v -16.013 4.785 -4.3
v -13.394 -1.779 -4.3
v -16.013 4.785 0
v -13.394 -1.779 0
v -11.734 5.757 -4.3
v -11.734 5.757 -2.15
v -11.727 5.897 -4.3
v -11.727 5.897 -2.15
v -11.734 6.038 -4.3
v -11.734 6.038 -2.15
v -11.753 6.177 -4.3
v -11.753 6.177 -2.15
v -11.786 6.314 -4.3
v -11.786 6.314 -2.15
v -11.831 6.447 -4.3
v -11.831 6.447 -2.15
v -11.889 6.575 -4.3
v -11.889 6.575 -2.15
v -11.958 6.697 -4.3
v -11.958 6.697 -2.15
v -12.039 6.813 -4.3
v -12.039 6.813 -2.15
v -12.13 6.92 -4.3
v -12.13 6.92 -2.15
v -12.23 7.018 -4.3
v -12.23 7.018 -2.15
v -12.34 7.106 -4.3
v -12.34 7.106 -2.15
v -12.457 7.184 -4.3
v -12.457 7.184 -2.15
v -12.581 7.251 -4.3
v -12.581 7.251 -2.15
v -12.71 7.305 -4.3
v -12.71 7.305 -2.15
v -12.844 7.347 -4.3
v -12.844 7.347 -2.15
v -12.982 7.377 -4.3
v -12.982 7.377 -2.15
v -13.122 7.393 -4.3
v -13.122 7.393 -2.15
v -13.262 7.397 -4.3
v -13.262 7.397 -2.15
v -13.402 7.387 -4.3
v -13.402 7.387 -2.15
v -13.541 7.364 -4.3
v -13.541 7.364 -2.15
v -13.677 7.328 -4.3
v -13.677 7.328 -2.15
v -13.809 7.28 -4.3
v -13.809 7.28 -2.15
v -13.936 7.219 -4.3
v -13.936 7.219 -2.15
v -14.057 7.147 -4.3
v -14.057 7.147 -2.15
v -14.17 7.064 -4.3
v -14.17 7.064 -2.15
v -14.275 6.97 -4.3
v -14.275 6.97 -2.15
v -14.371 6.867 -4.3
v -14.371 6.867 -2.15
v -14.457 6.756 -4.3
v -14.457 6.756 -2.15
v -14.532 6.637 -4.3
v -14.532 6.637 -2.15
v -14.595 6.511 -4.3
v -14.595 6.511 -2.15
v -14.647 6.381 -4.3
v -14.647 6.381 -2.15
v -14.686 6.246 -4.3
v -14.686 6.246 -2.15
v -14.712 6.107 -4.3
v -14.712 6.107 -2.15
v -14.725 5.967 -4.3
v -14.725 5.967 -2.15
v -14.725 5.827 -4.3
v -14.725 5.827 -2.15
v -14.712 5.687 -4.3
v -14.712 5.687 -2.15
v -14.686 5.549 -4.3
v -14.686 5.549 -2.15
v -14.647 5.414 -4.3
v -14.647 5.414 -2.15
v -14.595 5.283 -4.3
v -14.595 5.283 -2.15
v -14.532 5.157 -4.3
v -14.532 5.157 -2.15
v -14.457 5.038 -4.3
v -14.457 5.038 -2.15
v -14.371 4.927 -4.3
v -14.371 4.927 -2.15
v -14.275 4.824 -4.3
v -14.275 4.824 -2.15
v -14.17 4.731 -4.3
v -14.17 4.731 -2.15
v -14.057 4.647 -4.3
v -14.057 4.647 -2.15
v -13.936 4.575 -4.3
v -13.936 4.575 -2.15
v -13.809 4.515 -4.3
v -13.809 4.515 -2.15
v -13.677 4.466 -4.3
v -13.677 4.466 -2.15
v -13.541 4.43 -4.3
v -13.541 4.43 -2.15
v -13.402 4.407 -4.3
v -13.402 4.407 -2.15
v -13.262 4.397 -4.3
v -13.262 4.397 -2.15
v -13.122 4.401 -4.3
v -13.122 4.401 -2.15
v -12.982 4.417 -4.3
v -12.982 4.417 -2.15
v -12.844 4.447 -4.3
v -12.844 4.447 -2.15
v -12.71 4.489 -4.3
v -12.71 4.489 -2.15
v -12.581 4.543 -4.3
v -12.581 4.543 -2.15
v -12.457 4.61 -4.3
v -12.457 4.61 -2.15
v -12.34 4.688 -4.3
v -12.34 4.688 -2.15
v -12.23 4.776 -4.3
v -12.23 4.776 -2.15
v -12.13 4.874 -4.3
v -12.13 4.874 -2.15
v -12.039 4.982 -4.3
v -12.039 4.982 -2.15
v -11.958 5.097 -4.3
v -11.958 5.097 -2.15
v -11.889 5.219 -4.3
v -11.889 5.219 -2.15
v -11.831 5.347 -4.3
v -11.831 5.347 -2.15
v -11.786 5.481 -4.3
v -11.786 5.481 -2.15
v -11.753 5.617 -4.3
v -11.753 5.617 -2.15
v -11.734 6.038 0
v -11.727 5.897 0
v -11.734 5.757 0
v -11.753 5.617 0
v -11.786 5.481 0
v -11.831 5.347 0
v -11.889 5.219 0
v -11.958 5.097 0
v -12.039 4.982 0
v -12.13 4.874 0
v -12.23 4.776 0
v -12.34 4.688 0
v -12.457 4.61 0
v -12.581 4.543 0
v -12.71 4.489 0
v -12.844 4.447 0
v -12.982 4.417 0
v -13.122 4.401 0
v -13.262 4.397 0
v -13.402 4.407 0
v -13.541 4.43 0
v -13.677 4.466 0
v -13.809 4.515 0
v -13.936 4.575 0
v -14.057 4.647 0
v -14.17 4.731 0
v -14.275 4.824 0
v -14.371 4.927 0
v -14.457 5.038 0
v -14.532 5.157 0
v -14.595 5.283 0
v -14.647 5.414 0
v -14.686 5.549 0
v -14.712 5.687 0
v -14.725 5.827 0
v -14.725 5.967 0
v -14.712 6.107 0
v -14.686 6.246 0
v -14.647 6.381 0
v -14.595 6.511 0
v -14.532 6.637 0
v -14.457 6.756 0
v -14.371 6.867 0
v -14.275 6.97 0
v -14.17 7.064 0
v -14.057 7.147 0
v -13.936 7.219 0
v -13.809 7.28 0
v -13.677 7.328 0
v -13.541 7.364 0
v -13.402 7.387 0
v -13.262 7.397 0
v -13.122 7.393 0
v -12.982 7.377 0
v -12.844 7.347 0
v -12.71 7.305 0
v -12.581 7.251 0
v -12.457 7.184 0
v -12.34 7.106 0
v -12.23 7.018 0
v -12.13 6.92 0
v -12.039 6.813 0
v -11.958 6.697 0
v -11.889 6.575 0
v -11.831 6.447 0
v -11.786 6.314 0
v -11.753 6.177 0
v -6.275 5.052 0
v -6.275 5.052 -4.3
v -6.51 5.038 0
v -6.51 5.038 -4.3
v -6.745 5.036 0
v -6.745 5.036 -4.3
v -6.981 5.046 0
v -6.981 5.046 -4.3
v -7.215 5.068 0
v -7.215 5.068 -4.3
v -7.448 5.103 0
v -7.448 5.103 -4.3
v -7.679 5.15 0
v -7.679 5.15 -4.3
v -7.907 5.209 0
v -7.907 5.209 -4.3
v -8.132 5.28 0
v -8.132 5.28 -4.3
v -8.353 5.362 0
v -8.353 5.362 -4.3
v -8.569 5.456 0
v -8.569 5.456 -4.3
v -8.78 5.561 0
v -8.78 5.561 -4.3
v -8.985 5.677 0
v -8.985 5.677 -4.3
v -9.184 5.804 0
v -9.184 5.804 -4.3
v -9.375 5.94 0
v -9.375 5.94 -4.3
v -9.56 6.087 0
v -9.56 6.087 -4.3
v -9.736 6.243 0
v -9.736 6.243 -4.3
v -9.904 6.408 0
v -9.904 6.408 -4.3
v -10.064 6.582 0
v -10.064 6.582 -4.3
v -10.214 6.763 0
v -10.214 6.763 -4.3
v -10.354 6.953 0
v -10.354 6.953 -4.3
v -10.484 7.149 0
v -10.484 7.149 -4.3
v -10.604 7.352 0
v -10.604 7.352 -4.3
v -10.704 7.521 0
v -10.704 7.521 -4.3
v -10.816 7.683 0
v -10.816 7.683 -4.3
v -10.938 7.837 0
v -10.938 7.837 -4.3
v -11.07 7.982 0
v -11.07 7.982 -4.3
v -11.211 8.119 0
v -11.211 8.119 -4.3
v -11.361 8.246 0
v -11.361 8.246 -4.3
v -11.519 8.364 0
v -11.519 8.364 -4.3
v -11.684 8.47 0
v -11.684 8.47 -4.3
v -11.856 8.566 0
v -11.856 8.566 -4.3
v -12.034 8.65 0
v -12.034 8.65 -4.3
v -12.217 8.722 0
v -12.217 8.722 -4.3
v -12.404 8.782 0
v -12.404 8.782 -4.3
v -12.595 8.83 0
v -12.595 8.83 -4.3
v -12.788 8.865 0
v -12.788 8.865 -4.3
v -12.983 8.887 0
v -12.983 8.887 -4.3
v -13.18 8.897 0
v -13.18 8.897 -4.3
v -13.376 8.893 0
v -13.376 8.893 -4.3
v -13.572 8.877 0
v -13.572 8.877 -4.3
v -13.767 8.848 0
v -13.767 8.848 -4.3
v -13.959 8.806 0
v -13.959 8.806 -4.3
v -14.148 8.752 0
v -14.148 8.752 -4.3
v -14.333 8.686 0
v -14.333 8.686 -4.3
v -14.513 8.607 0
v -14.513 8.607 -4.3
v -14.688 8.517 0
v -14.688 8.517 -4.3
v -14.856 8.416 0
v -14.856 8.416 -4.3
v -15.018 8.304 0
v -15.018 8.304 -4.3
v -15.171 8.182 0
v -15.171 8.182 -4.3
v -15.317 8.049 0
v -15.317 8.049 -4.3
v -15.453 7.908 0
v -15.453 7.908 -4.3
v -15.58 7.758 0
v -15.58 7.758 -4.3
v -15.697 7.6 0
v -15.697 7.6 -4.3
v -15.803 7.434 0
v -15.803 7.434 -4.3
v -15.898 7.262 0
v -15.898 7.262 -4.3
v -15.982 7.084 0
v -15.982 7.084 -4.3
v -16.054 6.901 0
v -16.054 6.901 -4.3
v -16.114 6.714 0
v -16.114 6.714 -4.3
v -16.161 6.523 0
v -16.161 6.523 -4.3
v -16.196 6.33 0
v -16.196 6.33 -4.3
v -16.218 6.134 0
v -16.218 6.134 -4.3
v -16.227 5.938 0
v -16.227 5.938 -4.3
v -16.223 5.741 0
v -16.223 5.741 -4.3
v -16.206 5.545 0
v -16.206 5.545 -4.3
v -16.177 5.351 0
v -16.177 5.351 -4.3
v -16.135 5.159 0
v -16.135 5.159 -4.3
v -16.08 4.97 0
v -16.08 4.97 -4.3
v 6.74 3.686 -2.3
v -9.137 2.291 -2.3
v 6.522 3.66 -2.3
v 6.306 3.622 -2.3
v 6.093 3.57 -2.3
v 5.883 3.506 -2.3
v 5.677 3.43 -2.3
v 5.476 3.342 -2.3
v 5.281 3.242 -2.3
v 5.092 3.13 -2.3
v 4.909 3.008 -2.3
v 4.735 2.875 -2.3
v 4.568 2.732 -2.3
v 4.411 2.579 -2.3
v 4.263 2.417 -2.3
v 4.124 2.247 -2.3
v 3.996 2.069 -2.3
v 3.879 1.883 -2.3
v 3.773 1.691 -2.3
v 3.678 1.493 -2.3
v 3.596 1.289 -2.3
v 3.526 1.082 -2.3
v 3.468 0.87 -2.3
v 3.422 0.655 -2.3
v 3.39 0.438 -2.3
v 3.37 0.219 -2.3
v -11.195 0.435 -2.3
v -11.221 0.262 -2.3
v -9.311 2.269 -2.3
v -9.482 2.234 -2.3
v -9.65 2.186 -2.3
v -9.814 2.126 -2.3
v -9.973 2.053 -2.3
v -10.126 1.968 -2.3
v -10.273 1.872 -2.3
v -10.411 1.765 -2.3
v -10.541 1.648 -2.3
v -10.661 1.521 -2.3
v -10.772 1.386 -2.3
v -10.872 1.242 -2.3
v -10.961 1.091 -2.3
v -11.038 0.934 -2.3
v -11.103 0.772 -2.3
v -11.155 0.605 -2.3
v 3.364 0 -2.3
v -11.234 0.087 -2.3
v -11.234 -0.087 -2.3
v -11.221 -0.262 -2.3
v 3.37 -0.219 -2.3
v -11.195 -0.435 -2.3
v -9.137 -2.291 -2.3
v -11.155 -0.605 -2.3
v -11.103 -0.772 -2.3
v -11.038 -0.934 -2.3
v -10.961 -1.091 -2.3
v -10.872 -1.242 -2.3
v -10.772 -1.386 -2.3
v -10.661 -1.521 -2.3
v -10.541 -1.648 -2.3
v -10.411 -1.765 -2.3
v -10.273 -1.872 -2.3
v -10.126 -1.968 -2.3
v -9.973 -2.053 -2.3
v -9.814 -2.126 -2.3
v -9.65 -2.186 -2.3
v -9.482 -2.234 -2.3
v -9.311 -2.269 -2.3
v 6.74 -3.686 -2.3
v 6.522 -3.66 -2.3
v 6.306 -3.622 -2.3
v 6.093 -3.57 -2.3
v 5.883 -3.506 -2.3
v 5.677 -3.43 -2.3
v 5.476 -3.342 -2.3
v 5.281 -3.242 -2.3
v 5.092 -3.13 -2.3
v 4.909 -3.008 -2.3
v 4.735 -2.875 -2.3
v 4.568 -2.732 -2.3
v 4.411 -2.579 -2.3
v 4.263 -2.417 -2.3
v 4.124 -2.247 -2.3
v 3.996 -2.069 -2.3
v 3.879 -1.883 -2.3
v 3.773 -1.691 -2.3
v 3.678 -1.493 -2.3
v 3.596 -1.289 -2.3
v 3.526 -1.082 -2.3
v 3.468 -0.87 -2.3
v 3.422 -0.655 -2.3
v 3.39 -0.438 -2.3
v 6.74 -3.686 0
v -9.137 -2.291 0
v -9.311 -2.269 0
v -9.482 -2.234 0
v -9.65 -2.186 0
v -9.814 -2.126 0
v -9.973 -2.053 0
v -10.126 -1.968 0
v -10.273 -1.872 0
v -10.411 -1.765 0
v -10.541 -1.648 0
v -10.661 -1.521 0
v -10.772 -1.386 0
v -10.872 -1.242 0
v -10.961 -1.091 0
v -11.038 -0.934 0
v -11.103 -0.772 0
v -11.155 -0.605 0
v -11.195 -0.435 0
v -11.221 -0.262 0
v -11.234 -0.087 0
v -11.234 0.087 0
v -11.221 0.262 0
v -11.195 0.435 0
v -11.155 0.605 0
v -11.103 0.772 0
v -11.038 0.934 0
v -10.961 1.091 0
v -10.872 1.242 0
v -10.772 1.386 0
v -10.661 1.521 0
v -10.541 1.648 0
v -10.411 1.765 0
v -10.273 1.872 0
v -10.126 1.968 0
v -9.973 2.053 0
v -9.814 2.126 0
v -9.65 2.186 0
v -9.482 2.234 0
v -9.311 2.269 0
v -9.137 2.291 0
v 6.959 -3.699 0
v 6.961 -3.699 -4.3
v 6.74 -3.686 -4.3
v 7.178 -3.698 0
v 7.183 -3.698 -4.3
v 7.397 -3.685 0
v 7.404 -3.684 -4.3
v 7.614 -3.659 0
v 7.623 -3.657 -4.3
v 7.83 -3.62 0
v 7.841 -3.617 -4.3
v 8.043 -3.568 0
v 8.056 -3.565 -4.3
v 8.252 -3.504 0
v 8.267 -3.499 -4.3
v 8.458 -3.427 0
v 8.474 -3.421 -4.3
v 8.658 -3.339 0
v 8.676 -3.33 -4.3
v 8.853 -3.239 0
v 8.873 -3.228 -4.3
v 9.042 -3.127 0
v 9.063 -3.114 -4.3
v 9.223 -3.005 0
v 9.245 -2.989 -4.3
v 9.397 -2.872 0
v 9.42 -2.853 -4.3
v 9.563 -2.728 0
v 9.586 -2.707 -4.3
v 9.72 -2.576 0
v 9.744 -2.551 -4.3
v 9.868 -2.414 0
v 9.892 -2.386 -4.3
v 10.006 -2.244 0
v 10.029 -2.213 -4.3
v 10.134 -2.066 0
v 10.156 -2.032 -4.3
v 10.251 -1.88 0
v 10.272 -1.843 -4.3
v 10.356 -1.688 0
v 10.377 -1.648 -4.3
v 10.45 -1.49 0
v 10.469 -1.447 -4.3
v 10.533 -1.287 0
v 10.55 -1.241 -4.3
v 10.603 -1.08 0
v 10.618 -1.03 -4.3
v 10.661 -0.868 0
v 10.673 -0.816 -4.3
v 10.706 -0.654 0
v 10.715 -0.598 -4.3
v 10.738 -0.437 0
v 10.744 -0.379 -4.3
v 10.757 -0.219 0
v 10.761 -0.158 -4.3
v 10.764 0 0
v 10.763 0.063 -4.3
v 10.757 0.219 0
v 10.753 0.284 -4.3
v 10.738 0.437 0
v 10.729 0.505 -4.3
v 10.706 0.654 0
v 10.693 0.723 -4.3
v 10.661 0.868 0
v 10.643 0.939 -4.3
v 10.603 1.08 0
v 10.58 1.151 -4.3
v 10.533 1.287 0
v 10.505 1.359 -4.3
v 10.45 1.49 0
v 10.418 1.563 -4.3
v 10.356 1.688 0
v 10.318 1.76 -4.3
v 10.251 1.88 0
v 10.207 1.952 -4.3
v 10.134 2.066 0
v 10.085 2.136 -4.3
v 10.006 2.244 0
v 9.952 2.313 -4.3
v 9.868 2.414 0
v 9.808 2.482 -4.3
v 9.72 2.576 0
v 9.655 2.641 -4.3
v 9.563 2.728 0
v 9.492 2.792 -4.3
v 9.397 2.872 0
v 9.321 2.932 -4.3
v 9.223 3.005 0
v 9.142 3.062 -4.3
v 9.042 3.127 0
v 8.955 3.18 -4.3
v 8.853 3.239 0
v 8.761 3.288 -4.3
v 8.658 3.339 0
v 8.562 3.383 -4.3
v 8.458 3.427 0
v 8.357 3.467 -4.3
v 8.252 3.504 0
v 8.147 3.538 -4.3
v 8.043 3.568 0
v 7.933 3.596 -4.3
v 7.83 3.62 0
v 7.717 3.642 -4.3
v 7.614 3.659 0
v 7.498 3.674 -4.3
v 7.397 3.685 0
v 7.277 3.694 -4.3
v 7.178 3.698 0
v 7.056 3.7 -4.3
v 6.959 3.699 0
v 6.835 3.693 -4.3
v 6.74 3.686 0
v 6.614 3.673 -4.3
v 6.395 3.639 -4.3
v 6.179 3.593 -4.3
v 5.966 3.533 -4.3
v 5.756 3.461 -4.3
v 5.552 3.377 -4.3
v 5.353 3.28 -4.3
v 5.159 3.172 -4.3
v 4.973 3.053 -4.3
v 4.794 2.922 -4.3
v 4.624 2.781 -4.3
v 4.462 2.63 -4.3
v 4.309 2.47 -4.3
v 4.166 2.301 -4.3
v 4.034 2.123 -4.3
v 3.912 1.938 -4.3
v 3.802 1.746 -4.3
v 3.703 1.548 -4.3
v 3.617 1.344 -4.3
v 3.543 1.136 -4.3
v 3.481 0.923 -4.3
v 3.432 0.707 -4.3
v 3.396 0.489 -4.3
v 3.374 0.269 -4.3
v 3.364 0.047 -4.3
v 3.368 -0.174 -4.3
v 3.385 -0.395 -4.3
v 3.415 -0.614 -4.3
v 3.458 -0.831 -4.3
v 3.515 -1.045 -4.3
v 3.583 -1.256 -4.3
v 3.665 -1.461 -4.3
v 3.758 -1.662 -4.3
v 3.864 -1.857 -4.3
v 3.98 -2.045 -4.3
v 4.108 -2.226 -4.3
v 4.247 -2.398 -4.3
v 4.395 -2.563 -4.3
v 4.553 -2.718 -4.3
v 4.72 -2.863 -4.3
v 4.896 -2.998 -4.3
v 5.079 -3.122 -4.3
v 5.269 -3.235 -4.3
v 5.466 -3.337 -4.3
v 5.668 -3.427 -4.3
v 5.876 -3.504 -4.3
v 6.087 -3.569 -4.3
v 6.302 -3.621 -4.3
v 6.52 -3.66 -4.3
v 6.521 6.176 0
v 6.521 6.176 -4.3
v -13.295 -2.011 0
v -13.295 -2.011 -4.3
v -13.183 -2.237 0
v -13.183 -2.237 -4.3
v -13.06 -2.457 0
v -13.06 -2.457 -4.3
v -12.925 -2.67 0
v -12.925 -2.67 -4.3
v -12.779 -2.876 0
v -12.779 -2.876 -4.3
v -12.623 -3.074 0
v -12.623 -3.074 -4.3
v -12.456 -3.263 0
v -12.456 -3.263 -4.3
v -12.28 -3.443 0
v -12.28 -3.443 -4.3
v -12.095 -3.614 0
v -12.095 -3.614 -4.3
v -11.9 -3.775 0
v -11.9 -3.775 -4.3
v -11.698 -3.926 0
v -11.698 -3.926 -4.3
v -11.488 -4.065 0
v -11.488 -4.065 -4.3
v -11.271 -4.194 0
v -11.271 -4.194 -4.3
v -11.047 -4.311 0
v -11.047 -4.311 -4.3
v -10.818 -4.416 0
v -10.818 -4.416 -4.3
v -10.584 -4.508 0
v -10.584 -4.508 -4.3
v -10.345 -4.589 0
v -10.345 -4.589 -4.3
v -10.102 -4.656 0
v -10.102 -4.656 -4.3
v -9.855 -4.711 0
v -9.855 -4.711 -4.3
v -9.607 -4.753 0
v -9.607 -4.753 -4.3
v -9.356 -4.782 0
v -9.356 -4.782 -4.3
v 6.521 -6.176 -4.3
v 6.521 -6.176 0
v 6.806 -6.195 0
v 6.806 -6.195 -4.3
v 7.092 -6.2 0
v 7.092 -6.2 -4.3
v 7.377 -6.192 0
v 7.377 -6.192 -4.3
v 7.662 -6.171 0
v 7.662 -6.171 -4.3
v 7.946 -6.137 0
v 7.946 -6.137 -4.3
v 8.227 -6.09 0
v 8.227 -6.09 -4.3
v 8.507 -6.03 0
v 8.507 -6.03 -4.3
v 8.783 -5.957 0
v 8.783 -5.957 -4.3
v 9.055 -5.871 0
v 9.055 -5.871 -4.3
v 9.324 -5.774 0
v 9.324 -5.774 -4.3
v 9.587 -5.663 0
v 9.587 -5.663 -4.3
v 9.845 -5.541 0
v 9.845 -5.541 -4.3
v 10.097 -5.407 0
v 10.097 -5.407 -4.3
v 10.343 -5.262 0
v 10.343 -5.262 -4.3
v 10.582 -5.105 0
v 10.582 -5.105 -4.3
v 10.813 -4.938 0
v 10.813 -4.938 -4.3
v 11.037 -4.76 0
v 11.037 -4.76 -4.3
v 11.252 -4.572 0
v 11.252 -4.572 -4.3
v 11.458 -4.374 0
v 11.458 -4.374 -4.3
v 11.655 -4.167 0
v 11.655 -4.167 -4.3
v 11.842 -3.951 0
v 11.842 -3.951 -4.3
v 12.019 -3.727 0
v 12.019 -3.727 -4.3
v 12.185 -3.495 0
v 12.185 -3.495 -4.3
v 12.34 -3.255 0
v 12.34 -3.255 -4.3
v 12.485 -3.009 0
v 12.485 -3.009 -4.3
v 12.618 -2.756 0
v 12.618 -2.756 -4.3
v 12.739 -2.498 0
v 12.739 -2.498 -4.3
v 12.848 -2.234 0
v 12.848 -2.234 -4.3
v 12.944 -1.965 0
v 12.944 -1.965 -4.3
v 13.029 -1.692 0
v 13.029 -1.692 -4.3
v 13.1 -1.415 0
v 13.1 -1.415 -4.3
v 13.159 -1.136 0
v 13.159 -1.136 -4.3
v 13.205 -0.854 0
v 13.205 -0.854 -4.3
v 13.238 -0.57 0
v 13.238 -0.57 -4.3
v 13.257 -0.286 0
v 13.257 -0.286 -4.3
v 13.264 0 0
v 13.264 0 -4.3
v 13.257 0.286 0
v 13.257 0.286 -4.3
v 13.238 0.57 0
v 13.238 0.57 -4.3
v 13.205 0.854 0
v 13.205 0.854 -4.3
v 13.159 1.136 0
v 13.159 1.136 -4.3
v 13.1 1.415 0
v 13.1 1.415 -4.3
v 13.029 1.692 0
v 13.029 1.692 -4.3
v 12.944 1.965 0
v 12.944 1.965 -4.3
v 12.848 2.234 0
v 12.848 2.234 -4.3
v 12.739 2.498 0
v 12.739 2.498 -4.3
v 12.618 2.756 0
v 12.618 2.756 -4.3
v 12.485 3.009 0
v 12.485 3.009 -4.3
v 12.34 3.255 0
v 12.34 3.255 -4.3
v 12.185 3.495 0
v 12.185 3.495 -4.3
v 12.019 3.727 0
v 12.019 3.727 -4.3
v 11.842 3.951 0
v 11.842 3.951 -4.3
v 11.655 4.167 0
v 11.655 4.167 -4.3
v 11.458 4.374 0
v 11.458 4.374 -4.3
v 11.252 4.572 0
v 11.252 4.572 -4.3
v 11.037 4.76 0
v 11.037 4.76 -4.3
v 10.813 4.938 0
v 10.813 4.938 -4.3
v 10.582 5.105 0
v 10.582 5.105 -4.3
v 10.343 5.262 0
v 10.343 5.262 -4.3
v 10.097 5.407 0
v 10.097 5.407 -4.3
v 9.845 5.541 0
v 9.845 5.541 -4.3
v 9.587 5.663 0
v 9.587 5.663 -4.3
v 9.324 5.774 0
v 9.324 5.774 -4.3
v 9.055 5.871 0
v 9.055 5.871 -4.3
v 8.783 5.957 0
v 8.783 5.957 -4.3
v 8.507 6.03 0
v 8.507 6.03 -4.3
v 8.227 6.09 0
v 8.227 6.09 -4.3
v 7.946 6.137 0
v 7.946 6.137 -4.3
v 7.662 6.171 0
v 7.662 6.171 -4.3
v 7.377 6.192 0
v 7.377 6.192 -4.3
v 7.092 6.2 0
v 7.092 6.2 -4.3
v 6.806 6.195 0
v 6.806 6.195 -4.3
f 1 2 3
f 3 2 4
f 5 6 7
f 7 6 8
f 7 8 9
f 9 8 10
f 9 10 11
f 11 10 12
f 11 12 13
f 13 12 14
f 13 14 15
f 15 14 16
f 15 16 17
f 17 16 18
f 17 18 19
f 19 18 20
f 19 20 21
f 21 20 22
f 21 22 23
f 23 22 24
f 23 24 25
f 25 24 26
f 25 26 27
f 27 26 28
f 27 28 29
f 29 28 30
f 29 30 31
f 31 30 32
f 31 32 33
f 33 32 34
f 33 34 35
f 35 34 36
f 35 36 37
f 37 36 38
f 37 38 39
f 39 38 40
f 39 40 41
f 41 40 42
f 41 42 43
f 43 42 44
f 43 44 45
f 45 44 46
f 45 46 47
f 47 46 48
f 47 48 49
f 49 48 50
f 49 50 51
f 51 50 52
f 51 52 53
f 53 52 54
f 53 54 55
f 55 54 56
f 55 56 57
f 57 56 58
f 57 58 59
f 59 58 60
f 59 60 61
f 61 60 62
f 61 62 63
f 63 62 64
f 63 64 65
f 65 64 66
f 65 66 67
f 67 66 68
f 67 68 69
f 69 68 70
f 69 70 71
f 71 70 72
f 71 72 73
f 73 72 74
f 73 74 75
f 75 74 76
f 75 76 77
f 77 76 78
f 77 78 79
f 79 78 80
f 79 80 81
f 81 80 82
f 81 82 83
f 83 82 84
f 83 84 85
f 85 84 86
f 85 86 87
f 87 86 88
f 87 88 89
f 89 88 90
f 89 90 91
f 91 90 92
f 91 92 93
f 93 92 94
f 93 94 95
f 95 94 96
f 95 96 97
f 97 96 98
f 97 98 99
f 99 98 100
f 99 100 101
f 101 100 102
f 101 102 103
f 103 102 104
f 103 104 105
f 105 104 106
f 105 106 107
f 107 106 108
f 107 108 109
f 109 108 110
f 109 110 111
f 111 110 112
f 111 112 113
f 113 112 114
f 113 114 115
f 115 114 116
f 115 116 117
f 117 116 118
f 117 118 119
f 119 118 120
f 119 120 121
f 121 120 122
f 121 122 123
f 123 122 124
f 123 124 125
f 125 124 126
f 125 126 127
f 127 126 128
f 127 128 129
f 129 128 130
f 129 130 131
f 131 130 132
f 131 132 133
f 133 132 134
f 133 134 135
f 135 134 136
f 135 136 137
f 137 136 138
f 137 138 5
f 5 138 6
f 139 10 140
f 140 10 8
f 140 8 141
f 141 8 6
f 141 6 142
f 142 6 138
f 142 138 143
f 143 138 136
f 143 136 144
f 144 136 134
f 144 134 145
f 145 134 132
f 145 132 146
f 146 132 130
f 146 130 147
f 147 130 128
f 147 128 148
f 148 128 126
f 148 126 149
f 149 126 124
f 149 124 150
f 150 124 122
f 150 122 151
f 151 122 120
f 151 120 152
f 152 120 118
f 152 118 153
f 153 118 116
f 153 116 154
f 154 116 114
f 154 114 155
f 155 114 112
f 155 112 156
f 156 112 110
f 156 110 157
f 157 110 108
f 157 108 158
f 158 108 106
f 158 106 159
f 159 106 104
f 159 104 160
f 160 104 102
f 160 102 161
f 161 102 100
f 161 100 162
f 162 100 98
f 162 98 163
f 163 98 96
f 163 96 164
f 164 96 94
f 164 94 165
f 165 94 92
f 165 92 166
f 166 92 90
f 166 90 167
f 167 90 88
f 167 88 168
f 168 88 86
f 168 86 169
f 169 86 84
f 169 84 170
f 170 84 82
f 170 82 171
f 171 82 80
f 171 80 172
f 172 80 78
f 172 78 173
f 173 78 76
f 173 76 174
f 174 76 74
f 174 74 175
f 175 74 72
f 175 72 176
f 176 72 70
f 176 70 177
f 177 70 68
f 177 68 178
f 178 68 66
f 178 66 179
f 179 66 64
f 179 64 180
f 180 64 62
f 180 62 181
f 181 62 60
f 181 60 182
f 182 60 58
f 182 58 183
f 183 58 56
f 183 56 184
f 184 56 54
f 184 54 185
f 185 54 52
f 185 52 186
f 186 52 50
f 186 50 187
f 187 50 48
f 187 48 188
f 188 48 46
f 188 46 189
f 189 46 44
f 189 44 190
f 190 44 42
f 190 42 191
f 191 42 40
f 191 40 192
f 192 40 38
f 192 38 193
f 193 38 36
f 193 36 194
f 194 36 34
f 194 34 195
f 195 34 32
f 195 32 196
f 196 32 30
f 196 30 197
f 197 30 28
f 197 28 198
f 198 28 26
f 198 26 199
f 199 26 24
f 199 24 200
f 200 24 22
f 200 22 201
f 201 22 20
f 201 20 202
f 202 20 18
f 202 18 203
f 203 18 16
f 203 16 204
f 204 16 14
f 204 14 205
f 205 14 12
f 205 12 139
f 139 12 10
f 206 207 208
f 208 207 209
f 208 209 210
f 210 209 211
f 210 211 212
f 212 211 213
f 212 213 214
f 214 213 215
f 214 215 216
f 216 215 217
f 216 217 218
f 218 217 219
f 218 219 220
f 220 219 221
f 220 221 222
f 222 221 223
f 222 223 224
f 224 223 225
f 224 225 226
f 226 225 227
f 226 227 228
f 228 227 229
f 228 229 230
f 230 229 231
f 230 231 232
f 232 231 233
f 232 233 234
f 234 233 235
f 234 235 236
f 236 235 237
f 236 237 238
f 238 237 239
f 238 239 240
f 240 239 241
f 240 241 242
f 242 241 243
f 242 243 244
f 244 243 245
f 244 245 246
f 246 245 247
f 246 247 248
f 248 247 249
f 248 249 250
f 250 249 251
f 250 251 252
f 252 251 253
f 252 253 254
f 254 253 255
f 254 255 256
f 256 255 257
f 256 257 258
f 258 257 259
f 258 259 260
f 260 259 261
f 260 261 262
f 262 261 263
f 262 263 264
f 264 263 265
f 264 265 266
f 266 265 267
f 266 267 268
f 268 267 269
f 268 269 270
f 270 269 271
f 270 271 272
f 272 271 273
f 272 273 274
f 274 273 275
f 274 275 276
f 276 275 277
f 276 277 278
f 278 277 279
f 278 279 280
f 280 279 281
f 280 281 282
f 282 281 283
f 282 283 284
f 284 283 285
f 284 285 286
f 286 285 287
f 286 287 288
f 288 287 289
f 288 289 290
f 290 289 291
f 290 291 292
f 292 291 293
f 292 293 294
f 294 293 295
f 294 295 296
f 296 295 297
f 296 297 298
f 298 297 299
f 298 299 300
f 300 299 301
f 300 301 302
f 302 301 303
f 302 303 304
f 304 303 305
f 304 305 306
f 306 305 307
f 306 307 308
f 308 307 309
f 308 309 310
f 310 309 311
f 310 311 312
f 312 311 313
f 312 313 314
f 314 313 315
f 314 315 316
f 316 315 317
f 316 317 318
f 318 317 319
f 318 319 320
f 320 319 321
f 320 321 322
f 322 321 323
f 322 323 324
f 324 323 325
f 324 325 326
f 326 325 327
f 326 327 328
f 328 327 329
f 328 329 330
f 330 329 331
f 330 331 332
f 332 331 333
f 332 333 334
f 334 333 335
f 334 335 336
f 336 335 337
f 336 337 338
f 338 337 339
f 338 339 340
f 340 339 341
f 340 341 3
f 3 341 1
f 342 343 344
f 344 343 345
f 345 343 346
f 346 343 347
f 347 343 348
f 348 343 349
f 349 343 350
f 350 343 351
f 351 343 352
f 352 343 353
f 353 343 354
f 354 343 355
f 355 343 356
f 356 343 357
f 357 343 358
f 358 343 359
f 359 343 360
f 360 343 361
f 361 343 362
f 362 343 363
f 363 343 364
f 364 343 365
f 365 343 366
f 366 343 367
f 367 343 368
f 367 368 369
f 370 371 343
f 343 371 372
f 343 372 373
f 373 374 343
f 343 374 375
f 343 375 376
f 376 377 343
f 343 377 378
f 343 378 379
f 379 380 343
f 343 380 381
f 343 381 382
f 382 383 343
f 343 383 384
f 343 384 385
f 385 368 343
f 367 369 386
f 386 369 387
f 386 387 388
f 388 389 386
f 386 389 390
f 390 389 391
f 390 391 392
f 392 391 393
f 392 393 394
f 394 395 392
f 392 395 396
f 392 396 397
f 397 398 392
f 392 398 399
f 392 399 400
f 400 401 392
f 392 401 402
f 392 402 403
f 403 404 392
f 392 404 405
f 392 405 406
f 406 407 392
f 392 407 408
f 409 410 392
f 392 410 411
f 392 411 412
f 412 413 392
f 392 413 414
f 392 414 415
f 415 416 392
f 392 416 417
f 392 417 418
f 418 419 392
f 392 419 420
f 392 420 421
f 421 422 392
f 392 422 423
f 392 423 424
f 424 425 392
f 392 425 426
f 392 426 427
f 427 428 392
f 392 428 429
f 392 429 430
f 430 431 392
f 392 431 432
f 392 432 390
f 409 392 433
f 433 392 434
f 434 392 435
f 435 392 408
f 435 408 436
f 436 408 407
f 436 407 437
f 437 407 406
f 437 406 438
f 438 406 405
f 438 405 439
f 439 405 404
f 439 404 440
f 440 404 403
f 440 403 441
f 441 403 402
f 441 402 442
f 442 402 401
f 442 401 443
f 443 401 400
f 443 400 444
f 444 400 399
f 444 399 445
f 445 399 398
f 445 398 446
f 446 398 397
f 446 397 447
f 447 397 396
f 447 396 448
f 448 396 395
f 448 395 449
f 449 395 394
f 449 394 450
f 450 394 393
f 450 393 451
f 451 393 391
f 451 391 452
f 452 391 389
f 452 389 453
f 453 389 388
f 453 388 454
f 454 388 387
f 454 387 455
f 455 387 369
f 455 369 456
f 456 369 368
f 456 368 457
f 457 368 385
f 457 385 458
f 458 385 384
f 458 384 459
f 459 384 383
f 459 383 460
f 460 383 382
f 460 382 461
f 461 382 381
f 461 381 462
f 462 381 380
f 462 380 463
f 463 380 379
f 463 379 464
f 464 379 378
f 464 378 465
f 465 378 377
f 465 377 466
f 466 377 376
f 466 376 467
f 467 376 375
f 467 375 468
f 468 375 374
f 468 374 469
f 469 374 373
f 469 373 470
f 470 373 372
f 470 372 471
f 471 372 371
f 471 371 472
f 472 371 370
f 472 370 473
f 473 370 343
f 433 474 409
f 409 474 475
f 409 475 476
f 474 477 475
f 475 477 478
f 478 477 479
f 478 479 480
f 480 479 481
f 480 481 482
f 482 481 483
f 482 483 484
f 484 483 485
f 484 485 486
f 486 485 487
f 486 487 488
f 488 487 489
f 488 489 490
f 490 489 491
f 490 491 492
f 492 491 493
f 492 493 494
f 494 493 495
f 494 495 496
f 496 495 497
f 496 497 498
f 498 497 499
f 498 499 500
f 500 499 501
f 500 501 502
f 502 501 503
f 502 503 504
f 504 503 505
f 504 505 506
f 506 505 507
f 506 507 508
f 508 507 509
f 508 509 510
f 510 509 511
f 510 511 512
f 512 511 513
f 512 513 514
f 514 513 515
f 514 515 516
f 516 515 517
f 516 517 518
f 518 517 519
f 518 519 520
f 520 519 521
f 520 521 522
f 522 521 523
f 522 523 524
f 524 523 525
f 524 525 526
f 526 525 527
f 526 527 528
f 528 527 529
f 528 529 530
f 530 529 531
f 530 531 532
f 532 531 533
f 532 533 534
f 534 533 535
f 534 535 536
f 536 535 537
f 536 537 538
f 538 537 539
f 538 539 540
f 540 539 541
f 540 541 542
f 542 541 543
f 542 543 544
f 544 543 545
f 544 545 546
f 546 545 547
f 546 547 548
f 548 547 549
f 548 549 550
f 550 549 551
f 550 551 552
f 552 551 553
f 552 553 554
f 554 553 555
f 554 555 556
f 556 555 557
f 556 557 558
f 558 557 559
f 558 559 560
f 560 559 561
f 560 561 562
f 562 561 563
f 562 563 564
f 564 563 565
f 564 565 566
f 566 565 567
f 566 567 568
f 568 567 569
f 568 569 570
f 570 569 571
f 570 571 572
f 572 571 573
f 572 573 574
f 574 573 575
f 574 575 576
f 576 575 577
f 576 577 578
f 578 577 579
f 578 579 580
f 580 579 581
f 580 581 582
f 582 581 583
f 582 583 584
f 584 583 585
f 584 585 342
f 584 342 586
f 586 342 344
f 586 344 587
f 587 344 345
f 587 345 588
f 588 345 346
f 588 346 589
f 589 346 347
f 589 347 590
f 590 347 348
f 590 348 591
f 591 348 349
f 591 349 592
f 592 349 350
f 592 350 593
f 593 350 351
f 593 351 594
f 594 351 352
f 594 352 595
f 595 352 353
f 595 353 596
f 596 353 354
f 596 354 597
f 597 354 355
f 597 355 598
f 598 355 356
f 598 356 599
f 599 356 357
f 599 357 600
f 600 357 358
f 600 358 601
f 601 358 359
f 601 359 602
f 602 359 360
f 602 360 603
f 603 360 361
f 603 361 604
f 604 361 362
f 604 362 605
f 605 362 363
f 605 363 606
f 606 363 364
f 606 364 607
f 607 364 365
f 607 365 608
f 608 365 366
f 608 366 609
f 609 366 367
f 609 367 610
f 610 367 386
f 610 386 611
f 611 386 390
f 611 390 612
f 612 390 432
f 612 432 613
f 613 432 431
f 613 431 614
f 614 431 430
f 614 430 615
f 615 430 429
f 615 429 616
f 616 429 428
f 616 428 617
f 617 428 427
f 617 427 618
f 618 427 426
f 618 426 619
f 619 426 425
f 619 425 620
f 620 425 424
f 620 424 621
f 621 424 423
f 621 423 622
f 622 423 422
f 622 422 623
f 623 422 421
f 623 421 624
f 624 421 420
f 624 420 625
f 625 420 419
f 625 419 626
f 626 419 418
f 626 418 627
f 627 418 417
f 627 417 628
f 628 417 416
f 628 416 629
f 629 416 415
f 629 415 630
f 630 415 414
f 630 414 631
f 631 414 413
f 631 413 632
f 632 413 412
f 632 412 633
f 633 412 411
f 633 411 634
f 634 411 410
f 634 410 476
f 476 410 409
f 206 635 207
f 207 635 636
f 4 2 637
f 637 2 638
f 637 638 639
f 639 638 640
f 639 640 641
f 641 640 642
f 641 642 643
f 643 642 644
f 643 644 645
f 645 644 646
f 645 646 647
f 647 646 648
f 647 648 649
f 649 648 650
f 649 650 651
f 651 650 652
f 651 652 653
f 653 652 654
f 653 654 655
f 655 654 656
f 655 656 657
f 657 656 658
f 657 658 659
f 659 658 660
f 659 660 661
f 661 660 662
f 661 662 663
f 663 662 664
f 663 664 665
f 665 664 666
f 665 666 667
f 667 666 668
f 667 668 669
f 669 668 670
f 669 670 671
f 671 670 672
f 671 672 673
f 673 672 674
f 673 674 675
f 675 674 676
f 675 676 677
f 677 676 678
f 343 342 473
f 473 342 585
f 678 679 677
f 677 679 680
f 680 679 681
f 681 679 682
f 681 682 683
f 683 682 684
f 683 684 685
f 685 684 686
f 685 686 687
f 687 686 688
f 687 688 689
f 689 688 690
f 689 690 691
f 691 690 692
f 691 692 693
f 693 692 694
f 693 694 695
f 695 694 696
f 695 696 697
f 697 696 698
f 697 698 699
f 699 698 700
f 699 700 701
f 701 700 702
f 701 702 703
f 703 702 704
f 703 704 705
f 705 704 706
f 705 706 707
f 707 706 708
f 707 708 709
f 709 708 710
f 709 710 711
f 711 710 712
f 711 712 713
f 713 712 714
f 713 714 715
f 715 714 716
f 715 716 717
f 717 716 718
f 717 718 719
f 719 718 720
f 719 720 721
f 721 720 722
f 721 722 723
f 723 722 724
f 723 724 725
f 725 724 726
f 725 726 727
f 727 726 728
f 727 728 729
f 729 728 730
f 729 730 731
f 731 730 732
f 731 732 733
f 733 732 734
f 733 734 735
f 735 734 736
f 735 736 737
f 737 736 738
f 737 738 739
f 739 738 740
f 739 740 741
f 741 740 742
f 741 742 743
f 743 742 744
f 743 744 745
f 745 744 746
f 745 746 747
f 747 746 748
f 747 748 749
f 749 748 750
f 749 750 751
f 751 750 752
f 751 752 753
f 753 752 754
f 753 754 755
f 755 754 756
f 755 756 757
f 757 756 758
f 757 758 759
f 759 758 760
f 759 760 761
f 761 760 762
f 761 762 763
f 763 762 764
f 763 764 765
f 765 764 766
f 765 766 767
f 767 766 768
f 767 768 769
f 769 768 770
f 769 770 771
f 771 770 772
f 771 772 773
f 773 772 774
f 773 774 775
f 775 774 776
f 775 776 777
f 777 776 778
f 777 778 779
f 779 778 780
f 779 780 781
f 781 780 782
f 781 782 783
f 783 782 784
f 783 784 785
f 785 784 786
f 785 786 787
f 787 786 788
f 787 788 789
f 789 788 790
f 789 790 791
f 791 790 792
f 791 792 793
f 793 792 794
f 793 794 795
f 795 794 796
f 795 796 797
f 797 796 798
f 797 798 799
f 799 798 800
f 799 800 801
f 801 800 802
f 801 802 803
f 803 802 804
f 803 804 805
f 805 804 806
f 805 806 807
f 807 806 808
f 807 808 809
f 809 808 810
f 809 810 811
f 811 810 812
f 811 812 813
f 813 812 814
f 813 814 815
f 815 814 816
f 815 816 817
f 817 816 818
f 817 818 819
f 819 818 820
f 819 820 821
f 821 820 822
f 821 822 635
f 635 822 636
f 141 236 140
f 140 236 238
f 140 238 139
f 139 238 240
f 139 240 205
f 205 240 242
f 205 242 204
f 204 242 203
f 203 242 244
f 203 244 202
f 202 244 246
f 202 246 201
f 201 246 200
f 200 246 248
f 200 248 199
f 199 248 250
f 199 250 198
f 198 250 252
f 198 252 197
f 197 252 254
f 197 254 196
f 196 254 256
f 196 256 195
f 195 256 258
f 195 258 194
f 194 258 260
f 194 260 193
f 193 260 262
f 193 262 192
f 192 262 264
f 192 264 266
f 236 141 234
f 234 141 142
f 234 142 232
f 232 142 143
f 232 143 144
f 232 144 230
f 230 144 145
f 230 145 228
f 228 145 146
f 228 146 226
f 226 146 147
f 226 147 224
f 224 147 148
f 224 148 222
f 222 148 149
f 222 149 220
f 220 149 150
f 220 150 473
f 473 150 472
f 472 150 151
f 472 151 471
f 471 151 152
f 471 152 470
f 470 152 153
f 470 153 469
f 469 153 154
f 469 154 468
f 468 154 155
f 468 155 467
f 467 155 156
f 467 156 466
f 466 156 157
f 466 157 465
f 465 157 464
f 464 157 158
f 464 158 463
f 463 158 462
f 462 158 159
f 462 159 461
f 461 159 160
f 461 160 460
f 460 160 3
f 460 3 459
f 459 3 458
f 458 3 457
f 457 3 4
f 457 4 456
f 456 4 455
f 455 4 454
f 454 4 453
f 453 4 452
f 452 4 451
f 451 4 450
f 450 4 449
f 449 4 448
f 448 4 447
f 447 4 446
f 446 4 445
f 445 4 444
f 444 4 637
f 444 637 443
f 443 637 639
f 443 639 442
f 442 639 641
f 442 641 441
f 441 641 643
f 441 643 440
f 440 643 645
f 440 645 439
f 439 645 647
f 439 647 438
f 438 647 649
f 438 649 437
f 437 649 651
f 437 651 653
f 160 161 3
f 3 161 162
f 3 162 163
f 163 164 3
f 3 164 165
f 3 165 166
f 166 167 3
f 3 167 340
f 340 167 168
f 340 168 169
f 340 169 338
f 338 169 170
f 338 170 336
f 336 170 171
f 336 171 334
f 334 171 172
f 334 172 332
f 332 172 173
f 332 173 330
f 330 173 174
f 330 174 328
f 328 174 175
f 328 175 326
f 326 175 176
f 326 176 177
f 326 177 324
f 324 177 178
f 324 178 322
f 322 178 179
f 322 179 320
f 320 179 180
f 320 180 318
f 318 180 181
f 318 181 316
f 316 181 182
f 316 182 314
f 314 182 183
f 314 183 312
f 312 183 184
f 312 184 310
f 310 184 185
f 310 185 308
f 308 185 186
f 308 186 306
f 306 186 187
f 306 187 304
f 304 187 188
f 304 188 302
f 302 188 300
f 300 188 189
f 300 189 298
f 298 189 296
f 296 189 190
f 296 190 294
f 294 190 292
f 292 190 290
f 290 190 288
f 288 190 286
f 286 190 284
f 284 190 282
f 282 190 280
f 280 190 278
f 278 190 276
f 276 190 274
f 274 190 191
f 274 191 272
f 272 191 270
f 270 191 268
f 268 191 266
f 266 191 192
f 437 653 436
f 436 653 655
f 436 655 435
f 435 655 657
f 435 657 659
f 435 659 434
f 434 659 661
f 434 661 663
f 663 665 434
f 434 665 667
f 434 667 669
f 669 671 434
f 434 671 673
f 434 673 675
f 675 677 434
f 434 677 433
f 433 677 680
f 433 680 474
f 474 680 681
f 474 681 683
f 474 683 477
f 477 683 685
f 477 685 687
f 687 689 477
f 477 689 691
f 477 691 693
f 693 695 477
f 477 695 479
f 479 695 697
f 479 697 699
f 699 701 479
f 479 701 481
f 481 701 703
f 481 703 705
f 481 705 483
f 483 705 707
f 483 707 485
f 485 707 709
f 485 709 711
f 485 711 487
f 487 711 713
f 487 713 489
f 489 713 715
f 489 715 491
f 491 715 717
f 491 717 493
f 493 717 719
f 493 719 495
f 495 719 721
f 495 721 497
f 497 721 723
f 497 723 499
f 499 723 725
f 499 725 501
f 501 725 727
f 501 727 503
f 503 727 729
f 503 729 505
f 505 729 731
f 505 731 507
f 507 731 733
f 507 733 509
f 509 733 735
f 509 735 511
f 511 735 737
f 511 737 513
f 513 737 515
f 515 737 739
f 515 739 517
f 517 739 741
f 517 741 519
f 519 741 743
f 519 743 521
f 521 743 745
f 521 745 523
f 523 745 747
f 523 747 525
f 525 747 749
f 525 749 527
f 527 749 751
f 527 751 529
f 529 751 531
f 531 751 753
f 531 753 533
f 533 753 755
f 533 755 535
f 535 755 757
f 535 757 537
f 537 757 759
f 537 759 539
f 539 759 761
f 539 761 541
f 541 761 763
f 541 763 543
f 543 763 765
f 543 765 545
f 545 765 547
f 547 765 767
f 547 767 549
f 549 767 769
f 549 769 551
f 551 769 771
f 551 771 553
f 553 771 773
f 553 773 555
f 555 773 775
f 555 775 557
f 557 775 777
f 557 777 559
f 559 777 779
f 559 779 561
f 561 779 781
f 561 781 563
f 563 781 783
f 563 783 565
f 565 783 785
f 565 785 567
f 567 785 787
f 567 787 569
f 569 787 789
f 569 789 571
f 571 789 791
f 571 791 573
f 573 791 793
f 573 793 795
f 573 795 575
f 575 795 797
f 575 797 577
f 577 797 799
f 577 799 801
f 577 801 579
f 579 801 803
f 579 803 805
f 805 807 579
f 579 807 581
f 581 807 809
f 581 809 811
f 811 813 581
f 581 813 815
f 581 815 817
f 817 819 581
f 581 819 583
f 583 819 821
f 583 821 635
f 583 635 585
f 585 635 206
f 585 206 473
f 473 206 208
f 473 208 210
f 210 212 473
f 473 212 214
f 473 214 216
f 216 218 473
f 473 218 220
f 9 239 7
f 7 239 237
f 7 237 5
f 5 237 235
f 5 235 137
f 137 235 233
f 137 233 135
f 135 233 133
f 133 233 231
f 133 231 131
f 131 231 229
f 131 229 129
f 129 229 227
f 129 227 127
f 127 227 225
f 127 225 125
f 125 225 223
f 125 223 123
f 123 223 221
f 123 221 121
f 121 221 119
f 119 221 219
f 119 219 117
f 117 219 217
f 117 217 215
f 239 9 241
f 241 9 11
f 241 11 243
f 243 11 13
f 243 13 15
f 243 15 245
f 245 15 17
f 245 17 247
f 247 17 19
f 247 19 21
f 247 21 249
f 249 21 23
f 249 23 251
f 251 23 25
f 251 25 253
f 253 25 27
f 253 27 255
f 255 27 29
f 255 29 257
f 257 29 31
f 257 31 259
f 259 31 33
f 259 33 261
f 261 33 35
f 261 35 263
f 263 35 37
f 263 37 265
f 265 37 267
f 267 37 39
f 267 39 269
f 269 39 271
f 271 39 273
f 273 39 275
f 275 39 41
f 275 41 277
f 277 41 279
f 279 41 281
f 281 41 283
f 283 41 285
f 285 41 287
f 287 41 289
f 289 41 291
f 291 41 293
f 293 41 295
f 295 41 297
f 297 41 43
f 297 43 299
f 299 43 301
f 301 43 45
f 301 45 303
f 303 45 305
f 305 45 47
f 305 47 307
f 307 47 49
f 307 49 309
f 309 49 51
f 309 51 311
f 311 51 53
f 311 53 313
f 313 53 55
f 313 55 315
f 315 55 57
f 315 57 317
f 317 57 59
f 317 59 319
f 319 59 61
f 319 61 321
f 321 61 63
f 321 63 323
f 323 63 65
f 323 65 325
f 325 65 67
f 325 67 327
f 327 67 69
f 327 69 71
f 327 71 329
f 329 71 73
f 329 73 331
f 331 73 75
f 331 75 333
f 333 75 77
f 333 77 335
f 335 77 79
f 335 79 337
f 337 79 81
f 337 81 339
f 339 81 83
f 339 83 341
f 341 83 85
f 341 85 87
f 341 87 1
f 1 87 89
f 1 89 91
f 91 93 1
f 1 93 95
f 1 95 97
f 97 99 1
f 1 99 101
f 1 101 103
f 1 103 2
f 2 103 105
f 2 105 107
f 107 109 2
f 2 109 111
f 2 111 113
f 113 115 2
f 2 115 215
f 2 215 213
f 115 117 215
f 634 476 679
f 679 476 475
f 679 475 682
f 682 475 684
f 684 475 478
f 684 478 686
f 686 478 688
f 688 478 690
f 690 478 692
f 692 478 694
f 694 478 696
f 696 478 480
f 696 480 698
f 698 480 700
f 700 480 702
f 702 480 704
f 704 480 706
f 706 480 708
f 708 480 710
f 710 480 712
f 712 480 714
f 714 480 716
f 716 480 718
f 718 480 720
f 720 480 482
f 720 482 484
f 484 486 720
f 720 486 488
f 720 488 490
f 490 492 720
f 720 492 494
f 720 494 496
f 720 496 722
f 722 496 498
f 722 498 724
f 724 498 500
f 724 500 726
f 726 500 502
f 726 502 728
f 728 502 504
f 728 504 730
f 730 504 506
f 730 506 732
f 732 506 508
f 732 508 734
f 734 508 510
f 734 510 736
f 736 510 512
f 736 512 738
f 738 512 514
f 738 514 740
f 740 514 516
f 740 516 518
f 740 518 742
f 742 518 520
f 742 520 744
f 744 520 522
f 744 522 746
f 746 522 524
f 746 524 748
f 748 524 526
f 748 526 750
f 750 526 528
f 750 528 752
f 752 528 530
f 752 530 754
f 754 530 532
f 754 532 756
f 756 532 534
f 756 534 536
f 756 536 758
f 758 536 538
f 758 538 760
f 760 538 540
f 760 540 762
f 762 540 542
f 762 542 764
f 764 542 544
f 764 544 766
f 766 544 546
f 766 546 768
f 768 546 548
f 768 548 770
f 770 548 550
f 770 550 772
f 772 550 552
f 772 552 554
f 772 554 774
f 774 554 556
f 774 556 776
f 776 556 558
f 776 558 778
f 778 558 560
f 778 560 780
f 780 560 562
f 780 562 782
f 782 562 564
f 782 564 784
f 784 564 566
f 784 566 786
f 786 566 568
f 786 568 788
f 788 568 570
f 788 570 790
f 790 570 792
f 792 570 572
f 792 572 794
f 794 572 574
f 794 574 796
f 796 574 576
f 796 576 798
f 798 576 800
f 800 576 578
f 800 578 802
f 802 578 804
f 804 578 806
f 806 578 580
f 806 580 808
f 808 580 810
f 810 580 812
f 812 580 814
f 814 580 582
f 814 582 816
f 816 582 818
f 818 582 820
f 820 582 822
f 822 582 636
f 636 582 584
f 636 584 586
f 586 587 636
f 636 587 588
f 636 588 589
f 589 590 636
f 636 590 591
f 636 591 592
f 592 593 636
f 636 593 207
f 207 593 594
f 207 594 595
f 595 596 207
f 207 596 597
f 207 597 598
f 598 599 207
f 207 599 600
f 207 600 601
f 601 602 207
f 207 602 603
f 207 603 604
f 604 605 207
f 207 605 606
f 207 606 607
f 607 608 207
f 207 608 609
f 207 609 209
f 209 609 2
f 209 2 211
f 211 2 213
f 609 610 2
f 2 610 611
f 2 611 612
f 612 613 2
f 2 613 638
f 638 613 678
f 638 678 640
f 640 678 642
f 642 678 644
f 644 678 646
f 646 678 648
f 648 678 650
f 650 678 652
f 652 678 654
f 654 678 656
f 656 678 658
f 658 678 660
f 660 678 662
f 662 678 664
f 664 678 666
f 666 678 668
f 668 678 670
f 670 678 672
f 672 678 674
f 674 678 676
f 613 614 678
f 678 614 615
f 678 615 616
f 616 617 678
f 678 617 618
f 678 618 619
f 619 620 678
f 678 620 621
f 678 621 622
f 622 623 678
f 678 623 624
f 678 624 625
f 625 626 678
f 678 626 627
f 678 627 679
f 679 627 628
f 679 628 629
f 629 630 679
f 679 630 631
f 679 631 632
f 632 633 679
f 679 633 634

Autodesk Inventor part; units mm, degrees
ref_plane "YZ Plane" through (0, 0, 0) normal (1, 0, 0) x (0, 1, 0)
ref_plane "XZ Plane" through (0, 0, 0) normal (0, 1, 0) x (-1, 0, 0)
sketch "Sketch1" plane through (0, 0, 0) normal (0, 0, 1) x (1, 0, 0)
  line L0 (6.7664, -3.387) -> (-9.1111, -1.9923) projected
  line L1 (6.7664, 3.387) -> (-9.1111, 1.9923) projected
  arc A0 (-9.1111, 1.9923) -> (-9.1111, -1.9923) centre (-8.9361, 0) ccw projected
  circle A1 centre (-5.2361, 0) radius 0.5 projected
  circle A2 centre (-7.1361, 0) radius 0.5 projected
  circle A3 centre (-9.0361, 0) radius 0.5 projected
  circle A4 centre (2.3639, 0) radius 0.5 projected
  circle A5 centre (0.4639, 0) radius 0.5 projected
  circle A6 centre (-1.4361, 0) radius 0.5 projected
  circle A7 centre (-3.3361, 0) radius 0.5 projected
  arc A8 (6.7664, -3.387) -> (6.7664, 3.387) centre (7.0639, 0) ccw
  line L2 (-9.1373, 2.2912) -> (6.7402, 3.6858)
  arc A9 (6.7402, -3.6858) -> (6.7402, 3.6858) centre (7.0639, 0) ccw
  line L3 (6.7402, -3.6858) -> (-9.1373, -2.2912)
  arc A10 (-9.1373, 2.2912) -> (-9.1373, -2.2912) centre (-8.9361, 0) ccw
  line L4 (6.5214, 6.1762) -> (-9.3561, 4.7816)
  arc A11 (-9.3561, 4.7816) -> (-9.3561, -4.7816) centre (-8.9361, 0) ccw
  line L5 (-9.3561, -4.7816) -> (6.5214, -6.1762)
  arc A12 (6.5214, -6.1762) -> (6.5214, 6.1762) centre (7.0639, 0) ccw
  point P0 (0, 0)
  dimension "d0" = 0.3
  dimension "d1" = 2.5
ref_plane "Work Plane1" through (3.5948, -3.4691, -4.3) normal (0, 0, -1) x (0, 1, 0)
extrude "Extrusion1" add sketch "Sketch1" against normal up to surface (4.3 mm away) contours A12 L5 A11 L4
sketch "Sketch2" plane through (7.0639, 0, -4.3) normal (0, 0, -1) x (-1, 0, 0)
  line L0 (0.3238, -3.6858) -> (16.2013, -2.2912) projected
  arc A0 (16.2013, -2.2912) -> (16.2012, 2.2912) centre (16, 0) ccw projected
  line L1 (16.2012, 2.2912) -> (0.3237, 3.6858) projected
  arc A1 (0.2975, -3.387) -> (0.2975, 3.387) centre (0, 0) ccw projected
  circle A2 centre (0, 0) radius 3.7
  point P0 (7.0639, 0)
  point P1 (0.3237, 3.6858)
extrude "Extrusion2" add sketch "Sketch2" against normal blind 2 contours A2 L1 A0 L0
sketch "Sketch6" plane through (0, 0, 0) normal (0, 0, 1) x (1, 0, 0)
  circle A0 centre (-13.2269, 5.8971) radius 0.5
  circle A1 centre (-13.2269, 5.8971) radius 1.5
  arc A2 (-9.3561, 4.7816) -> (-9.3561, -4.7816) centre (-8.9361, 0) ccw projected
  line L0 (6.5214, 6.1762) -> (-9.3561, 4.7816) projected
  circle A3 centre (-13.2269, 5.8971) radius 3
  line L1 (-16.0133, 4.7853) -> (-13.3943, -1.7788)
  arc A4 (-10.6035, 7.3522) -> (-6.2746, 5.0523) centre (-6.6683, 9.535) ccw
  point P0 (0, 0)
  dimension "d10" = 3
  dimension "d11" = 6
  dimension "d12" = 9
extrude "Extrusion5" add sketch "Sketch6" against normal up to surface (4.3 mm away) contours A2 A3 A4 L0 | A2 A3 | A2 L1 A3 picked at (-12.6304, 3.6481)
properties part number "GripperLeft_3DPrint"
